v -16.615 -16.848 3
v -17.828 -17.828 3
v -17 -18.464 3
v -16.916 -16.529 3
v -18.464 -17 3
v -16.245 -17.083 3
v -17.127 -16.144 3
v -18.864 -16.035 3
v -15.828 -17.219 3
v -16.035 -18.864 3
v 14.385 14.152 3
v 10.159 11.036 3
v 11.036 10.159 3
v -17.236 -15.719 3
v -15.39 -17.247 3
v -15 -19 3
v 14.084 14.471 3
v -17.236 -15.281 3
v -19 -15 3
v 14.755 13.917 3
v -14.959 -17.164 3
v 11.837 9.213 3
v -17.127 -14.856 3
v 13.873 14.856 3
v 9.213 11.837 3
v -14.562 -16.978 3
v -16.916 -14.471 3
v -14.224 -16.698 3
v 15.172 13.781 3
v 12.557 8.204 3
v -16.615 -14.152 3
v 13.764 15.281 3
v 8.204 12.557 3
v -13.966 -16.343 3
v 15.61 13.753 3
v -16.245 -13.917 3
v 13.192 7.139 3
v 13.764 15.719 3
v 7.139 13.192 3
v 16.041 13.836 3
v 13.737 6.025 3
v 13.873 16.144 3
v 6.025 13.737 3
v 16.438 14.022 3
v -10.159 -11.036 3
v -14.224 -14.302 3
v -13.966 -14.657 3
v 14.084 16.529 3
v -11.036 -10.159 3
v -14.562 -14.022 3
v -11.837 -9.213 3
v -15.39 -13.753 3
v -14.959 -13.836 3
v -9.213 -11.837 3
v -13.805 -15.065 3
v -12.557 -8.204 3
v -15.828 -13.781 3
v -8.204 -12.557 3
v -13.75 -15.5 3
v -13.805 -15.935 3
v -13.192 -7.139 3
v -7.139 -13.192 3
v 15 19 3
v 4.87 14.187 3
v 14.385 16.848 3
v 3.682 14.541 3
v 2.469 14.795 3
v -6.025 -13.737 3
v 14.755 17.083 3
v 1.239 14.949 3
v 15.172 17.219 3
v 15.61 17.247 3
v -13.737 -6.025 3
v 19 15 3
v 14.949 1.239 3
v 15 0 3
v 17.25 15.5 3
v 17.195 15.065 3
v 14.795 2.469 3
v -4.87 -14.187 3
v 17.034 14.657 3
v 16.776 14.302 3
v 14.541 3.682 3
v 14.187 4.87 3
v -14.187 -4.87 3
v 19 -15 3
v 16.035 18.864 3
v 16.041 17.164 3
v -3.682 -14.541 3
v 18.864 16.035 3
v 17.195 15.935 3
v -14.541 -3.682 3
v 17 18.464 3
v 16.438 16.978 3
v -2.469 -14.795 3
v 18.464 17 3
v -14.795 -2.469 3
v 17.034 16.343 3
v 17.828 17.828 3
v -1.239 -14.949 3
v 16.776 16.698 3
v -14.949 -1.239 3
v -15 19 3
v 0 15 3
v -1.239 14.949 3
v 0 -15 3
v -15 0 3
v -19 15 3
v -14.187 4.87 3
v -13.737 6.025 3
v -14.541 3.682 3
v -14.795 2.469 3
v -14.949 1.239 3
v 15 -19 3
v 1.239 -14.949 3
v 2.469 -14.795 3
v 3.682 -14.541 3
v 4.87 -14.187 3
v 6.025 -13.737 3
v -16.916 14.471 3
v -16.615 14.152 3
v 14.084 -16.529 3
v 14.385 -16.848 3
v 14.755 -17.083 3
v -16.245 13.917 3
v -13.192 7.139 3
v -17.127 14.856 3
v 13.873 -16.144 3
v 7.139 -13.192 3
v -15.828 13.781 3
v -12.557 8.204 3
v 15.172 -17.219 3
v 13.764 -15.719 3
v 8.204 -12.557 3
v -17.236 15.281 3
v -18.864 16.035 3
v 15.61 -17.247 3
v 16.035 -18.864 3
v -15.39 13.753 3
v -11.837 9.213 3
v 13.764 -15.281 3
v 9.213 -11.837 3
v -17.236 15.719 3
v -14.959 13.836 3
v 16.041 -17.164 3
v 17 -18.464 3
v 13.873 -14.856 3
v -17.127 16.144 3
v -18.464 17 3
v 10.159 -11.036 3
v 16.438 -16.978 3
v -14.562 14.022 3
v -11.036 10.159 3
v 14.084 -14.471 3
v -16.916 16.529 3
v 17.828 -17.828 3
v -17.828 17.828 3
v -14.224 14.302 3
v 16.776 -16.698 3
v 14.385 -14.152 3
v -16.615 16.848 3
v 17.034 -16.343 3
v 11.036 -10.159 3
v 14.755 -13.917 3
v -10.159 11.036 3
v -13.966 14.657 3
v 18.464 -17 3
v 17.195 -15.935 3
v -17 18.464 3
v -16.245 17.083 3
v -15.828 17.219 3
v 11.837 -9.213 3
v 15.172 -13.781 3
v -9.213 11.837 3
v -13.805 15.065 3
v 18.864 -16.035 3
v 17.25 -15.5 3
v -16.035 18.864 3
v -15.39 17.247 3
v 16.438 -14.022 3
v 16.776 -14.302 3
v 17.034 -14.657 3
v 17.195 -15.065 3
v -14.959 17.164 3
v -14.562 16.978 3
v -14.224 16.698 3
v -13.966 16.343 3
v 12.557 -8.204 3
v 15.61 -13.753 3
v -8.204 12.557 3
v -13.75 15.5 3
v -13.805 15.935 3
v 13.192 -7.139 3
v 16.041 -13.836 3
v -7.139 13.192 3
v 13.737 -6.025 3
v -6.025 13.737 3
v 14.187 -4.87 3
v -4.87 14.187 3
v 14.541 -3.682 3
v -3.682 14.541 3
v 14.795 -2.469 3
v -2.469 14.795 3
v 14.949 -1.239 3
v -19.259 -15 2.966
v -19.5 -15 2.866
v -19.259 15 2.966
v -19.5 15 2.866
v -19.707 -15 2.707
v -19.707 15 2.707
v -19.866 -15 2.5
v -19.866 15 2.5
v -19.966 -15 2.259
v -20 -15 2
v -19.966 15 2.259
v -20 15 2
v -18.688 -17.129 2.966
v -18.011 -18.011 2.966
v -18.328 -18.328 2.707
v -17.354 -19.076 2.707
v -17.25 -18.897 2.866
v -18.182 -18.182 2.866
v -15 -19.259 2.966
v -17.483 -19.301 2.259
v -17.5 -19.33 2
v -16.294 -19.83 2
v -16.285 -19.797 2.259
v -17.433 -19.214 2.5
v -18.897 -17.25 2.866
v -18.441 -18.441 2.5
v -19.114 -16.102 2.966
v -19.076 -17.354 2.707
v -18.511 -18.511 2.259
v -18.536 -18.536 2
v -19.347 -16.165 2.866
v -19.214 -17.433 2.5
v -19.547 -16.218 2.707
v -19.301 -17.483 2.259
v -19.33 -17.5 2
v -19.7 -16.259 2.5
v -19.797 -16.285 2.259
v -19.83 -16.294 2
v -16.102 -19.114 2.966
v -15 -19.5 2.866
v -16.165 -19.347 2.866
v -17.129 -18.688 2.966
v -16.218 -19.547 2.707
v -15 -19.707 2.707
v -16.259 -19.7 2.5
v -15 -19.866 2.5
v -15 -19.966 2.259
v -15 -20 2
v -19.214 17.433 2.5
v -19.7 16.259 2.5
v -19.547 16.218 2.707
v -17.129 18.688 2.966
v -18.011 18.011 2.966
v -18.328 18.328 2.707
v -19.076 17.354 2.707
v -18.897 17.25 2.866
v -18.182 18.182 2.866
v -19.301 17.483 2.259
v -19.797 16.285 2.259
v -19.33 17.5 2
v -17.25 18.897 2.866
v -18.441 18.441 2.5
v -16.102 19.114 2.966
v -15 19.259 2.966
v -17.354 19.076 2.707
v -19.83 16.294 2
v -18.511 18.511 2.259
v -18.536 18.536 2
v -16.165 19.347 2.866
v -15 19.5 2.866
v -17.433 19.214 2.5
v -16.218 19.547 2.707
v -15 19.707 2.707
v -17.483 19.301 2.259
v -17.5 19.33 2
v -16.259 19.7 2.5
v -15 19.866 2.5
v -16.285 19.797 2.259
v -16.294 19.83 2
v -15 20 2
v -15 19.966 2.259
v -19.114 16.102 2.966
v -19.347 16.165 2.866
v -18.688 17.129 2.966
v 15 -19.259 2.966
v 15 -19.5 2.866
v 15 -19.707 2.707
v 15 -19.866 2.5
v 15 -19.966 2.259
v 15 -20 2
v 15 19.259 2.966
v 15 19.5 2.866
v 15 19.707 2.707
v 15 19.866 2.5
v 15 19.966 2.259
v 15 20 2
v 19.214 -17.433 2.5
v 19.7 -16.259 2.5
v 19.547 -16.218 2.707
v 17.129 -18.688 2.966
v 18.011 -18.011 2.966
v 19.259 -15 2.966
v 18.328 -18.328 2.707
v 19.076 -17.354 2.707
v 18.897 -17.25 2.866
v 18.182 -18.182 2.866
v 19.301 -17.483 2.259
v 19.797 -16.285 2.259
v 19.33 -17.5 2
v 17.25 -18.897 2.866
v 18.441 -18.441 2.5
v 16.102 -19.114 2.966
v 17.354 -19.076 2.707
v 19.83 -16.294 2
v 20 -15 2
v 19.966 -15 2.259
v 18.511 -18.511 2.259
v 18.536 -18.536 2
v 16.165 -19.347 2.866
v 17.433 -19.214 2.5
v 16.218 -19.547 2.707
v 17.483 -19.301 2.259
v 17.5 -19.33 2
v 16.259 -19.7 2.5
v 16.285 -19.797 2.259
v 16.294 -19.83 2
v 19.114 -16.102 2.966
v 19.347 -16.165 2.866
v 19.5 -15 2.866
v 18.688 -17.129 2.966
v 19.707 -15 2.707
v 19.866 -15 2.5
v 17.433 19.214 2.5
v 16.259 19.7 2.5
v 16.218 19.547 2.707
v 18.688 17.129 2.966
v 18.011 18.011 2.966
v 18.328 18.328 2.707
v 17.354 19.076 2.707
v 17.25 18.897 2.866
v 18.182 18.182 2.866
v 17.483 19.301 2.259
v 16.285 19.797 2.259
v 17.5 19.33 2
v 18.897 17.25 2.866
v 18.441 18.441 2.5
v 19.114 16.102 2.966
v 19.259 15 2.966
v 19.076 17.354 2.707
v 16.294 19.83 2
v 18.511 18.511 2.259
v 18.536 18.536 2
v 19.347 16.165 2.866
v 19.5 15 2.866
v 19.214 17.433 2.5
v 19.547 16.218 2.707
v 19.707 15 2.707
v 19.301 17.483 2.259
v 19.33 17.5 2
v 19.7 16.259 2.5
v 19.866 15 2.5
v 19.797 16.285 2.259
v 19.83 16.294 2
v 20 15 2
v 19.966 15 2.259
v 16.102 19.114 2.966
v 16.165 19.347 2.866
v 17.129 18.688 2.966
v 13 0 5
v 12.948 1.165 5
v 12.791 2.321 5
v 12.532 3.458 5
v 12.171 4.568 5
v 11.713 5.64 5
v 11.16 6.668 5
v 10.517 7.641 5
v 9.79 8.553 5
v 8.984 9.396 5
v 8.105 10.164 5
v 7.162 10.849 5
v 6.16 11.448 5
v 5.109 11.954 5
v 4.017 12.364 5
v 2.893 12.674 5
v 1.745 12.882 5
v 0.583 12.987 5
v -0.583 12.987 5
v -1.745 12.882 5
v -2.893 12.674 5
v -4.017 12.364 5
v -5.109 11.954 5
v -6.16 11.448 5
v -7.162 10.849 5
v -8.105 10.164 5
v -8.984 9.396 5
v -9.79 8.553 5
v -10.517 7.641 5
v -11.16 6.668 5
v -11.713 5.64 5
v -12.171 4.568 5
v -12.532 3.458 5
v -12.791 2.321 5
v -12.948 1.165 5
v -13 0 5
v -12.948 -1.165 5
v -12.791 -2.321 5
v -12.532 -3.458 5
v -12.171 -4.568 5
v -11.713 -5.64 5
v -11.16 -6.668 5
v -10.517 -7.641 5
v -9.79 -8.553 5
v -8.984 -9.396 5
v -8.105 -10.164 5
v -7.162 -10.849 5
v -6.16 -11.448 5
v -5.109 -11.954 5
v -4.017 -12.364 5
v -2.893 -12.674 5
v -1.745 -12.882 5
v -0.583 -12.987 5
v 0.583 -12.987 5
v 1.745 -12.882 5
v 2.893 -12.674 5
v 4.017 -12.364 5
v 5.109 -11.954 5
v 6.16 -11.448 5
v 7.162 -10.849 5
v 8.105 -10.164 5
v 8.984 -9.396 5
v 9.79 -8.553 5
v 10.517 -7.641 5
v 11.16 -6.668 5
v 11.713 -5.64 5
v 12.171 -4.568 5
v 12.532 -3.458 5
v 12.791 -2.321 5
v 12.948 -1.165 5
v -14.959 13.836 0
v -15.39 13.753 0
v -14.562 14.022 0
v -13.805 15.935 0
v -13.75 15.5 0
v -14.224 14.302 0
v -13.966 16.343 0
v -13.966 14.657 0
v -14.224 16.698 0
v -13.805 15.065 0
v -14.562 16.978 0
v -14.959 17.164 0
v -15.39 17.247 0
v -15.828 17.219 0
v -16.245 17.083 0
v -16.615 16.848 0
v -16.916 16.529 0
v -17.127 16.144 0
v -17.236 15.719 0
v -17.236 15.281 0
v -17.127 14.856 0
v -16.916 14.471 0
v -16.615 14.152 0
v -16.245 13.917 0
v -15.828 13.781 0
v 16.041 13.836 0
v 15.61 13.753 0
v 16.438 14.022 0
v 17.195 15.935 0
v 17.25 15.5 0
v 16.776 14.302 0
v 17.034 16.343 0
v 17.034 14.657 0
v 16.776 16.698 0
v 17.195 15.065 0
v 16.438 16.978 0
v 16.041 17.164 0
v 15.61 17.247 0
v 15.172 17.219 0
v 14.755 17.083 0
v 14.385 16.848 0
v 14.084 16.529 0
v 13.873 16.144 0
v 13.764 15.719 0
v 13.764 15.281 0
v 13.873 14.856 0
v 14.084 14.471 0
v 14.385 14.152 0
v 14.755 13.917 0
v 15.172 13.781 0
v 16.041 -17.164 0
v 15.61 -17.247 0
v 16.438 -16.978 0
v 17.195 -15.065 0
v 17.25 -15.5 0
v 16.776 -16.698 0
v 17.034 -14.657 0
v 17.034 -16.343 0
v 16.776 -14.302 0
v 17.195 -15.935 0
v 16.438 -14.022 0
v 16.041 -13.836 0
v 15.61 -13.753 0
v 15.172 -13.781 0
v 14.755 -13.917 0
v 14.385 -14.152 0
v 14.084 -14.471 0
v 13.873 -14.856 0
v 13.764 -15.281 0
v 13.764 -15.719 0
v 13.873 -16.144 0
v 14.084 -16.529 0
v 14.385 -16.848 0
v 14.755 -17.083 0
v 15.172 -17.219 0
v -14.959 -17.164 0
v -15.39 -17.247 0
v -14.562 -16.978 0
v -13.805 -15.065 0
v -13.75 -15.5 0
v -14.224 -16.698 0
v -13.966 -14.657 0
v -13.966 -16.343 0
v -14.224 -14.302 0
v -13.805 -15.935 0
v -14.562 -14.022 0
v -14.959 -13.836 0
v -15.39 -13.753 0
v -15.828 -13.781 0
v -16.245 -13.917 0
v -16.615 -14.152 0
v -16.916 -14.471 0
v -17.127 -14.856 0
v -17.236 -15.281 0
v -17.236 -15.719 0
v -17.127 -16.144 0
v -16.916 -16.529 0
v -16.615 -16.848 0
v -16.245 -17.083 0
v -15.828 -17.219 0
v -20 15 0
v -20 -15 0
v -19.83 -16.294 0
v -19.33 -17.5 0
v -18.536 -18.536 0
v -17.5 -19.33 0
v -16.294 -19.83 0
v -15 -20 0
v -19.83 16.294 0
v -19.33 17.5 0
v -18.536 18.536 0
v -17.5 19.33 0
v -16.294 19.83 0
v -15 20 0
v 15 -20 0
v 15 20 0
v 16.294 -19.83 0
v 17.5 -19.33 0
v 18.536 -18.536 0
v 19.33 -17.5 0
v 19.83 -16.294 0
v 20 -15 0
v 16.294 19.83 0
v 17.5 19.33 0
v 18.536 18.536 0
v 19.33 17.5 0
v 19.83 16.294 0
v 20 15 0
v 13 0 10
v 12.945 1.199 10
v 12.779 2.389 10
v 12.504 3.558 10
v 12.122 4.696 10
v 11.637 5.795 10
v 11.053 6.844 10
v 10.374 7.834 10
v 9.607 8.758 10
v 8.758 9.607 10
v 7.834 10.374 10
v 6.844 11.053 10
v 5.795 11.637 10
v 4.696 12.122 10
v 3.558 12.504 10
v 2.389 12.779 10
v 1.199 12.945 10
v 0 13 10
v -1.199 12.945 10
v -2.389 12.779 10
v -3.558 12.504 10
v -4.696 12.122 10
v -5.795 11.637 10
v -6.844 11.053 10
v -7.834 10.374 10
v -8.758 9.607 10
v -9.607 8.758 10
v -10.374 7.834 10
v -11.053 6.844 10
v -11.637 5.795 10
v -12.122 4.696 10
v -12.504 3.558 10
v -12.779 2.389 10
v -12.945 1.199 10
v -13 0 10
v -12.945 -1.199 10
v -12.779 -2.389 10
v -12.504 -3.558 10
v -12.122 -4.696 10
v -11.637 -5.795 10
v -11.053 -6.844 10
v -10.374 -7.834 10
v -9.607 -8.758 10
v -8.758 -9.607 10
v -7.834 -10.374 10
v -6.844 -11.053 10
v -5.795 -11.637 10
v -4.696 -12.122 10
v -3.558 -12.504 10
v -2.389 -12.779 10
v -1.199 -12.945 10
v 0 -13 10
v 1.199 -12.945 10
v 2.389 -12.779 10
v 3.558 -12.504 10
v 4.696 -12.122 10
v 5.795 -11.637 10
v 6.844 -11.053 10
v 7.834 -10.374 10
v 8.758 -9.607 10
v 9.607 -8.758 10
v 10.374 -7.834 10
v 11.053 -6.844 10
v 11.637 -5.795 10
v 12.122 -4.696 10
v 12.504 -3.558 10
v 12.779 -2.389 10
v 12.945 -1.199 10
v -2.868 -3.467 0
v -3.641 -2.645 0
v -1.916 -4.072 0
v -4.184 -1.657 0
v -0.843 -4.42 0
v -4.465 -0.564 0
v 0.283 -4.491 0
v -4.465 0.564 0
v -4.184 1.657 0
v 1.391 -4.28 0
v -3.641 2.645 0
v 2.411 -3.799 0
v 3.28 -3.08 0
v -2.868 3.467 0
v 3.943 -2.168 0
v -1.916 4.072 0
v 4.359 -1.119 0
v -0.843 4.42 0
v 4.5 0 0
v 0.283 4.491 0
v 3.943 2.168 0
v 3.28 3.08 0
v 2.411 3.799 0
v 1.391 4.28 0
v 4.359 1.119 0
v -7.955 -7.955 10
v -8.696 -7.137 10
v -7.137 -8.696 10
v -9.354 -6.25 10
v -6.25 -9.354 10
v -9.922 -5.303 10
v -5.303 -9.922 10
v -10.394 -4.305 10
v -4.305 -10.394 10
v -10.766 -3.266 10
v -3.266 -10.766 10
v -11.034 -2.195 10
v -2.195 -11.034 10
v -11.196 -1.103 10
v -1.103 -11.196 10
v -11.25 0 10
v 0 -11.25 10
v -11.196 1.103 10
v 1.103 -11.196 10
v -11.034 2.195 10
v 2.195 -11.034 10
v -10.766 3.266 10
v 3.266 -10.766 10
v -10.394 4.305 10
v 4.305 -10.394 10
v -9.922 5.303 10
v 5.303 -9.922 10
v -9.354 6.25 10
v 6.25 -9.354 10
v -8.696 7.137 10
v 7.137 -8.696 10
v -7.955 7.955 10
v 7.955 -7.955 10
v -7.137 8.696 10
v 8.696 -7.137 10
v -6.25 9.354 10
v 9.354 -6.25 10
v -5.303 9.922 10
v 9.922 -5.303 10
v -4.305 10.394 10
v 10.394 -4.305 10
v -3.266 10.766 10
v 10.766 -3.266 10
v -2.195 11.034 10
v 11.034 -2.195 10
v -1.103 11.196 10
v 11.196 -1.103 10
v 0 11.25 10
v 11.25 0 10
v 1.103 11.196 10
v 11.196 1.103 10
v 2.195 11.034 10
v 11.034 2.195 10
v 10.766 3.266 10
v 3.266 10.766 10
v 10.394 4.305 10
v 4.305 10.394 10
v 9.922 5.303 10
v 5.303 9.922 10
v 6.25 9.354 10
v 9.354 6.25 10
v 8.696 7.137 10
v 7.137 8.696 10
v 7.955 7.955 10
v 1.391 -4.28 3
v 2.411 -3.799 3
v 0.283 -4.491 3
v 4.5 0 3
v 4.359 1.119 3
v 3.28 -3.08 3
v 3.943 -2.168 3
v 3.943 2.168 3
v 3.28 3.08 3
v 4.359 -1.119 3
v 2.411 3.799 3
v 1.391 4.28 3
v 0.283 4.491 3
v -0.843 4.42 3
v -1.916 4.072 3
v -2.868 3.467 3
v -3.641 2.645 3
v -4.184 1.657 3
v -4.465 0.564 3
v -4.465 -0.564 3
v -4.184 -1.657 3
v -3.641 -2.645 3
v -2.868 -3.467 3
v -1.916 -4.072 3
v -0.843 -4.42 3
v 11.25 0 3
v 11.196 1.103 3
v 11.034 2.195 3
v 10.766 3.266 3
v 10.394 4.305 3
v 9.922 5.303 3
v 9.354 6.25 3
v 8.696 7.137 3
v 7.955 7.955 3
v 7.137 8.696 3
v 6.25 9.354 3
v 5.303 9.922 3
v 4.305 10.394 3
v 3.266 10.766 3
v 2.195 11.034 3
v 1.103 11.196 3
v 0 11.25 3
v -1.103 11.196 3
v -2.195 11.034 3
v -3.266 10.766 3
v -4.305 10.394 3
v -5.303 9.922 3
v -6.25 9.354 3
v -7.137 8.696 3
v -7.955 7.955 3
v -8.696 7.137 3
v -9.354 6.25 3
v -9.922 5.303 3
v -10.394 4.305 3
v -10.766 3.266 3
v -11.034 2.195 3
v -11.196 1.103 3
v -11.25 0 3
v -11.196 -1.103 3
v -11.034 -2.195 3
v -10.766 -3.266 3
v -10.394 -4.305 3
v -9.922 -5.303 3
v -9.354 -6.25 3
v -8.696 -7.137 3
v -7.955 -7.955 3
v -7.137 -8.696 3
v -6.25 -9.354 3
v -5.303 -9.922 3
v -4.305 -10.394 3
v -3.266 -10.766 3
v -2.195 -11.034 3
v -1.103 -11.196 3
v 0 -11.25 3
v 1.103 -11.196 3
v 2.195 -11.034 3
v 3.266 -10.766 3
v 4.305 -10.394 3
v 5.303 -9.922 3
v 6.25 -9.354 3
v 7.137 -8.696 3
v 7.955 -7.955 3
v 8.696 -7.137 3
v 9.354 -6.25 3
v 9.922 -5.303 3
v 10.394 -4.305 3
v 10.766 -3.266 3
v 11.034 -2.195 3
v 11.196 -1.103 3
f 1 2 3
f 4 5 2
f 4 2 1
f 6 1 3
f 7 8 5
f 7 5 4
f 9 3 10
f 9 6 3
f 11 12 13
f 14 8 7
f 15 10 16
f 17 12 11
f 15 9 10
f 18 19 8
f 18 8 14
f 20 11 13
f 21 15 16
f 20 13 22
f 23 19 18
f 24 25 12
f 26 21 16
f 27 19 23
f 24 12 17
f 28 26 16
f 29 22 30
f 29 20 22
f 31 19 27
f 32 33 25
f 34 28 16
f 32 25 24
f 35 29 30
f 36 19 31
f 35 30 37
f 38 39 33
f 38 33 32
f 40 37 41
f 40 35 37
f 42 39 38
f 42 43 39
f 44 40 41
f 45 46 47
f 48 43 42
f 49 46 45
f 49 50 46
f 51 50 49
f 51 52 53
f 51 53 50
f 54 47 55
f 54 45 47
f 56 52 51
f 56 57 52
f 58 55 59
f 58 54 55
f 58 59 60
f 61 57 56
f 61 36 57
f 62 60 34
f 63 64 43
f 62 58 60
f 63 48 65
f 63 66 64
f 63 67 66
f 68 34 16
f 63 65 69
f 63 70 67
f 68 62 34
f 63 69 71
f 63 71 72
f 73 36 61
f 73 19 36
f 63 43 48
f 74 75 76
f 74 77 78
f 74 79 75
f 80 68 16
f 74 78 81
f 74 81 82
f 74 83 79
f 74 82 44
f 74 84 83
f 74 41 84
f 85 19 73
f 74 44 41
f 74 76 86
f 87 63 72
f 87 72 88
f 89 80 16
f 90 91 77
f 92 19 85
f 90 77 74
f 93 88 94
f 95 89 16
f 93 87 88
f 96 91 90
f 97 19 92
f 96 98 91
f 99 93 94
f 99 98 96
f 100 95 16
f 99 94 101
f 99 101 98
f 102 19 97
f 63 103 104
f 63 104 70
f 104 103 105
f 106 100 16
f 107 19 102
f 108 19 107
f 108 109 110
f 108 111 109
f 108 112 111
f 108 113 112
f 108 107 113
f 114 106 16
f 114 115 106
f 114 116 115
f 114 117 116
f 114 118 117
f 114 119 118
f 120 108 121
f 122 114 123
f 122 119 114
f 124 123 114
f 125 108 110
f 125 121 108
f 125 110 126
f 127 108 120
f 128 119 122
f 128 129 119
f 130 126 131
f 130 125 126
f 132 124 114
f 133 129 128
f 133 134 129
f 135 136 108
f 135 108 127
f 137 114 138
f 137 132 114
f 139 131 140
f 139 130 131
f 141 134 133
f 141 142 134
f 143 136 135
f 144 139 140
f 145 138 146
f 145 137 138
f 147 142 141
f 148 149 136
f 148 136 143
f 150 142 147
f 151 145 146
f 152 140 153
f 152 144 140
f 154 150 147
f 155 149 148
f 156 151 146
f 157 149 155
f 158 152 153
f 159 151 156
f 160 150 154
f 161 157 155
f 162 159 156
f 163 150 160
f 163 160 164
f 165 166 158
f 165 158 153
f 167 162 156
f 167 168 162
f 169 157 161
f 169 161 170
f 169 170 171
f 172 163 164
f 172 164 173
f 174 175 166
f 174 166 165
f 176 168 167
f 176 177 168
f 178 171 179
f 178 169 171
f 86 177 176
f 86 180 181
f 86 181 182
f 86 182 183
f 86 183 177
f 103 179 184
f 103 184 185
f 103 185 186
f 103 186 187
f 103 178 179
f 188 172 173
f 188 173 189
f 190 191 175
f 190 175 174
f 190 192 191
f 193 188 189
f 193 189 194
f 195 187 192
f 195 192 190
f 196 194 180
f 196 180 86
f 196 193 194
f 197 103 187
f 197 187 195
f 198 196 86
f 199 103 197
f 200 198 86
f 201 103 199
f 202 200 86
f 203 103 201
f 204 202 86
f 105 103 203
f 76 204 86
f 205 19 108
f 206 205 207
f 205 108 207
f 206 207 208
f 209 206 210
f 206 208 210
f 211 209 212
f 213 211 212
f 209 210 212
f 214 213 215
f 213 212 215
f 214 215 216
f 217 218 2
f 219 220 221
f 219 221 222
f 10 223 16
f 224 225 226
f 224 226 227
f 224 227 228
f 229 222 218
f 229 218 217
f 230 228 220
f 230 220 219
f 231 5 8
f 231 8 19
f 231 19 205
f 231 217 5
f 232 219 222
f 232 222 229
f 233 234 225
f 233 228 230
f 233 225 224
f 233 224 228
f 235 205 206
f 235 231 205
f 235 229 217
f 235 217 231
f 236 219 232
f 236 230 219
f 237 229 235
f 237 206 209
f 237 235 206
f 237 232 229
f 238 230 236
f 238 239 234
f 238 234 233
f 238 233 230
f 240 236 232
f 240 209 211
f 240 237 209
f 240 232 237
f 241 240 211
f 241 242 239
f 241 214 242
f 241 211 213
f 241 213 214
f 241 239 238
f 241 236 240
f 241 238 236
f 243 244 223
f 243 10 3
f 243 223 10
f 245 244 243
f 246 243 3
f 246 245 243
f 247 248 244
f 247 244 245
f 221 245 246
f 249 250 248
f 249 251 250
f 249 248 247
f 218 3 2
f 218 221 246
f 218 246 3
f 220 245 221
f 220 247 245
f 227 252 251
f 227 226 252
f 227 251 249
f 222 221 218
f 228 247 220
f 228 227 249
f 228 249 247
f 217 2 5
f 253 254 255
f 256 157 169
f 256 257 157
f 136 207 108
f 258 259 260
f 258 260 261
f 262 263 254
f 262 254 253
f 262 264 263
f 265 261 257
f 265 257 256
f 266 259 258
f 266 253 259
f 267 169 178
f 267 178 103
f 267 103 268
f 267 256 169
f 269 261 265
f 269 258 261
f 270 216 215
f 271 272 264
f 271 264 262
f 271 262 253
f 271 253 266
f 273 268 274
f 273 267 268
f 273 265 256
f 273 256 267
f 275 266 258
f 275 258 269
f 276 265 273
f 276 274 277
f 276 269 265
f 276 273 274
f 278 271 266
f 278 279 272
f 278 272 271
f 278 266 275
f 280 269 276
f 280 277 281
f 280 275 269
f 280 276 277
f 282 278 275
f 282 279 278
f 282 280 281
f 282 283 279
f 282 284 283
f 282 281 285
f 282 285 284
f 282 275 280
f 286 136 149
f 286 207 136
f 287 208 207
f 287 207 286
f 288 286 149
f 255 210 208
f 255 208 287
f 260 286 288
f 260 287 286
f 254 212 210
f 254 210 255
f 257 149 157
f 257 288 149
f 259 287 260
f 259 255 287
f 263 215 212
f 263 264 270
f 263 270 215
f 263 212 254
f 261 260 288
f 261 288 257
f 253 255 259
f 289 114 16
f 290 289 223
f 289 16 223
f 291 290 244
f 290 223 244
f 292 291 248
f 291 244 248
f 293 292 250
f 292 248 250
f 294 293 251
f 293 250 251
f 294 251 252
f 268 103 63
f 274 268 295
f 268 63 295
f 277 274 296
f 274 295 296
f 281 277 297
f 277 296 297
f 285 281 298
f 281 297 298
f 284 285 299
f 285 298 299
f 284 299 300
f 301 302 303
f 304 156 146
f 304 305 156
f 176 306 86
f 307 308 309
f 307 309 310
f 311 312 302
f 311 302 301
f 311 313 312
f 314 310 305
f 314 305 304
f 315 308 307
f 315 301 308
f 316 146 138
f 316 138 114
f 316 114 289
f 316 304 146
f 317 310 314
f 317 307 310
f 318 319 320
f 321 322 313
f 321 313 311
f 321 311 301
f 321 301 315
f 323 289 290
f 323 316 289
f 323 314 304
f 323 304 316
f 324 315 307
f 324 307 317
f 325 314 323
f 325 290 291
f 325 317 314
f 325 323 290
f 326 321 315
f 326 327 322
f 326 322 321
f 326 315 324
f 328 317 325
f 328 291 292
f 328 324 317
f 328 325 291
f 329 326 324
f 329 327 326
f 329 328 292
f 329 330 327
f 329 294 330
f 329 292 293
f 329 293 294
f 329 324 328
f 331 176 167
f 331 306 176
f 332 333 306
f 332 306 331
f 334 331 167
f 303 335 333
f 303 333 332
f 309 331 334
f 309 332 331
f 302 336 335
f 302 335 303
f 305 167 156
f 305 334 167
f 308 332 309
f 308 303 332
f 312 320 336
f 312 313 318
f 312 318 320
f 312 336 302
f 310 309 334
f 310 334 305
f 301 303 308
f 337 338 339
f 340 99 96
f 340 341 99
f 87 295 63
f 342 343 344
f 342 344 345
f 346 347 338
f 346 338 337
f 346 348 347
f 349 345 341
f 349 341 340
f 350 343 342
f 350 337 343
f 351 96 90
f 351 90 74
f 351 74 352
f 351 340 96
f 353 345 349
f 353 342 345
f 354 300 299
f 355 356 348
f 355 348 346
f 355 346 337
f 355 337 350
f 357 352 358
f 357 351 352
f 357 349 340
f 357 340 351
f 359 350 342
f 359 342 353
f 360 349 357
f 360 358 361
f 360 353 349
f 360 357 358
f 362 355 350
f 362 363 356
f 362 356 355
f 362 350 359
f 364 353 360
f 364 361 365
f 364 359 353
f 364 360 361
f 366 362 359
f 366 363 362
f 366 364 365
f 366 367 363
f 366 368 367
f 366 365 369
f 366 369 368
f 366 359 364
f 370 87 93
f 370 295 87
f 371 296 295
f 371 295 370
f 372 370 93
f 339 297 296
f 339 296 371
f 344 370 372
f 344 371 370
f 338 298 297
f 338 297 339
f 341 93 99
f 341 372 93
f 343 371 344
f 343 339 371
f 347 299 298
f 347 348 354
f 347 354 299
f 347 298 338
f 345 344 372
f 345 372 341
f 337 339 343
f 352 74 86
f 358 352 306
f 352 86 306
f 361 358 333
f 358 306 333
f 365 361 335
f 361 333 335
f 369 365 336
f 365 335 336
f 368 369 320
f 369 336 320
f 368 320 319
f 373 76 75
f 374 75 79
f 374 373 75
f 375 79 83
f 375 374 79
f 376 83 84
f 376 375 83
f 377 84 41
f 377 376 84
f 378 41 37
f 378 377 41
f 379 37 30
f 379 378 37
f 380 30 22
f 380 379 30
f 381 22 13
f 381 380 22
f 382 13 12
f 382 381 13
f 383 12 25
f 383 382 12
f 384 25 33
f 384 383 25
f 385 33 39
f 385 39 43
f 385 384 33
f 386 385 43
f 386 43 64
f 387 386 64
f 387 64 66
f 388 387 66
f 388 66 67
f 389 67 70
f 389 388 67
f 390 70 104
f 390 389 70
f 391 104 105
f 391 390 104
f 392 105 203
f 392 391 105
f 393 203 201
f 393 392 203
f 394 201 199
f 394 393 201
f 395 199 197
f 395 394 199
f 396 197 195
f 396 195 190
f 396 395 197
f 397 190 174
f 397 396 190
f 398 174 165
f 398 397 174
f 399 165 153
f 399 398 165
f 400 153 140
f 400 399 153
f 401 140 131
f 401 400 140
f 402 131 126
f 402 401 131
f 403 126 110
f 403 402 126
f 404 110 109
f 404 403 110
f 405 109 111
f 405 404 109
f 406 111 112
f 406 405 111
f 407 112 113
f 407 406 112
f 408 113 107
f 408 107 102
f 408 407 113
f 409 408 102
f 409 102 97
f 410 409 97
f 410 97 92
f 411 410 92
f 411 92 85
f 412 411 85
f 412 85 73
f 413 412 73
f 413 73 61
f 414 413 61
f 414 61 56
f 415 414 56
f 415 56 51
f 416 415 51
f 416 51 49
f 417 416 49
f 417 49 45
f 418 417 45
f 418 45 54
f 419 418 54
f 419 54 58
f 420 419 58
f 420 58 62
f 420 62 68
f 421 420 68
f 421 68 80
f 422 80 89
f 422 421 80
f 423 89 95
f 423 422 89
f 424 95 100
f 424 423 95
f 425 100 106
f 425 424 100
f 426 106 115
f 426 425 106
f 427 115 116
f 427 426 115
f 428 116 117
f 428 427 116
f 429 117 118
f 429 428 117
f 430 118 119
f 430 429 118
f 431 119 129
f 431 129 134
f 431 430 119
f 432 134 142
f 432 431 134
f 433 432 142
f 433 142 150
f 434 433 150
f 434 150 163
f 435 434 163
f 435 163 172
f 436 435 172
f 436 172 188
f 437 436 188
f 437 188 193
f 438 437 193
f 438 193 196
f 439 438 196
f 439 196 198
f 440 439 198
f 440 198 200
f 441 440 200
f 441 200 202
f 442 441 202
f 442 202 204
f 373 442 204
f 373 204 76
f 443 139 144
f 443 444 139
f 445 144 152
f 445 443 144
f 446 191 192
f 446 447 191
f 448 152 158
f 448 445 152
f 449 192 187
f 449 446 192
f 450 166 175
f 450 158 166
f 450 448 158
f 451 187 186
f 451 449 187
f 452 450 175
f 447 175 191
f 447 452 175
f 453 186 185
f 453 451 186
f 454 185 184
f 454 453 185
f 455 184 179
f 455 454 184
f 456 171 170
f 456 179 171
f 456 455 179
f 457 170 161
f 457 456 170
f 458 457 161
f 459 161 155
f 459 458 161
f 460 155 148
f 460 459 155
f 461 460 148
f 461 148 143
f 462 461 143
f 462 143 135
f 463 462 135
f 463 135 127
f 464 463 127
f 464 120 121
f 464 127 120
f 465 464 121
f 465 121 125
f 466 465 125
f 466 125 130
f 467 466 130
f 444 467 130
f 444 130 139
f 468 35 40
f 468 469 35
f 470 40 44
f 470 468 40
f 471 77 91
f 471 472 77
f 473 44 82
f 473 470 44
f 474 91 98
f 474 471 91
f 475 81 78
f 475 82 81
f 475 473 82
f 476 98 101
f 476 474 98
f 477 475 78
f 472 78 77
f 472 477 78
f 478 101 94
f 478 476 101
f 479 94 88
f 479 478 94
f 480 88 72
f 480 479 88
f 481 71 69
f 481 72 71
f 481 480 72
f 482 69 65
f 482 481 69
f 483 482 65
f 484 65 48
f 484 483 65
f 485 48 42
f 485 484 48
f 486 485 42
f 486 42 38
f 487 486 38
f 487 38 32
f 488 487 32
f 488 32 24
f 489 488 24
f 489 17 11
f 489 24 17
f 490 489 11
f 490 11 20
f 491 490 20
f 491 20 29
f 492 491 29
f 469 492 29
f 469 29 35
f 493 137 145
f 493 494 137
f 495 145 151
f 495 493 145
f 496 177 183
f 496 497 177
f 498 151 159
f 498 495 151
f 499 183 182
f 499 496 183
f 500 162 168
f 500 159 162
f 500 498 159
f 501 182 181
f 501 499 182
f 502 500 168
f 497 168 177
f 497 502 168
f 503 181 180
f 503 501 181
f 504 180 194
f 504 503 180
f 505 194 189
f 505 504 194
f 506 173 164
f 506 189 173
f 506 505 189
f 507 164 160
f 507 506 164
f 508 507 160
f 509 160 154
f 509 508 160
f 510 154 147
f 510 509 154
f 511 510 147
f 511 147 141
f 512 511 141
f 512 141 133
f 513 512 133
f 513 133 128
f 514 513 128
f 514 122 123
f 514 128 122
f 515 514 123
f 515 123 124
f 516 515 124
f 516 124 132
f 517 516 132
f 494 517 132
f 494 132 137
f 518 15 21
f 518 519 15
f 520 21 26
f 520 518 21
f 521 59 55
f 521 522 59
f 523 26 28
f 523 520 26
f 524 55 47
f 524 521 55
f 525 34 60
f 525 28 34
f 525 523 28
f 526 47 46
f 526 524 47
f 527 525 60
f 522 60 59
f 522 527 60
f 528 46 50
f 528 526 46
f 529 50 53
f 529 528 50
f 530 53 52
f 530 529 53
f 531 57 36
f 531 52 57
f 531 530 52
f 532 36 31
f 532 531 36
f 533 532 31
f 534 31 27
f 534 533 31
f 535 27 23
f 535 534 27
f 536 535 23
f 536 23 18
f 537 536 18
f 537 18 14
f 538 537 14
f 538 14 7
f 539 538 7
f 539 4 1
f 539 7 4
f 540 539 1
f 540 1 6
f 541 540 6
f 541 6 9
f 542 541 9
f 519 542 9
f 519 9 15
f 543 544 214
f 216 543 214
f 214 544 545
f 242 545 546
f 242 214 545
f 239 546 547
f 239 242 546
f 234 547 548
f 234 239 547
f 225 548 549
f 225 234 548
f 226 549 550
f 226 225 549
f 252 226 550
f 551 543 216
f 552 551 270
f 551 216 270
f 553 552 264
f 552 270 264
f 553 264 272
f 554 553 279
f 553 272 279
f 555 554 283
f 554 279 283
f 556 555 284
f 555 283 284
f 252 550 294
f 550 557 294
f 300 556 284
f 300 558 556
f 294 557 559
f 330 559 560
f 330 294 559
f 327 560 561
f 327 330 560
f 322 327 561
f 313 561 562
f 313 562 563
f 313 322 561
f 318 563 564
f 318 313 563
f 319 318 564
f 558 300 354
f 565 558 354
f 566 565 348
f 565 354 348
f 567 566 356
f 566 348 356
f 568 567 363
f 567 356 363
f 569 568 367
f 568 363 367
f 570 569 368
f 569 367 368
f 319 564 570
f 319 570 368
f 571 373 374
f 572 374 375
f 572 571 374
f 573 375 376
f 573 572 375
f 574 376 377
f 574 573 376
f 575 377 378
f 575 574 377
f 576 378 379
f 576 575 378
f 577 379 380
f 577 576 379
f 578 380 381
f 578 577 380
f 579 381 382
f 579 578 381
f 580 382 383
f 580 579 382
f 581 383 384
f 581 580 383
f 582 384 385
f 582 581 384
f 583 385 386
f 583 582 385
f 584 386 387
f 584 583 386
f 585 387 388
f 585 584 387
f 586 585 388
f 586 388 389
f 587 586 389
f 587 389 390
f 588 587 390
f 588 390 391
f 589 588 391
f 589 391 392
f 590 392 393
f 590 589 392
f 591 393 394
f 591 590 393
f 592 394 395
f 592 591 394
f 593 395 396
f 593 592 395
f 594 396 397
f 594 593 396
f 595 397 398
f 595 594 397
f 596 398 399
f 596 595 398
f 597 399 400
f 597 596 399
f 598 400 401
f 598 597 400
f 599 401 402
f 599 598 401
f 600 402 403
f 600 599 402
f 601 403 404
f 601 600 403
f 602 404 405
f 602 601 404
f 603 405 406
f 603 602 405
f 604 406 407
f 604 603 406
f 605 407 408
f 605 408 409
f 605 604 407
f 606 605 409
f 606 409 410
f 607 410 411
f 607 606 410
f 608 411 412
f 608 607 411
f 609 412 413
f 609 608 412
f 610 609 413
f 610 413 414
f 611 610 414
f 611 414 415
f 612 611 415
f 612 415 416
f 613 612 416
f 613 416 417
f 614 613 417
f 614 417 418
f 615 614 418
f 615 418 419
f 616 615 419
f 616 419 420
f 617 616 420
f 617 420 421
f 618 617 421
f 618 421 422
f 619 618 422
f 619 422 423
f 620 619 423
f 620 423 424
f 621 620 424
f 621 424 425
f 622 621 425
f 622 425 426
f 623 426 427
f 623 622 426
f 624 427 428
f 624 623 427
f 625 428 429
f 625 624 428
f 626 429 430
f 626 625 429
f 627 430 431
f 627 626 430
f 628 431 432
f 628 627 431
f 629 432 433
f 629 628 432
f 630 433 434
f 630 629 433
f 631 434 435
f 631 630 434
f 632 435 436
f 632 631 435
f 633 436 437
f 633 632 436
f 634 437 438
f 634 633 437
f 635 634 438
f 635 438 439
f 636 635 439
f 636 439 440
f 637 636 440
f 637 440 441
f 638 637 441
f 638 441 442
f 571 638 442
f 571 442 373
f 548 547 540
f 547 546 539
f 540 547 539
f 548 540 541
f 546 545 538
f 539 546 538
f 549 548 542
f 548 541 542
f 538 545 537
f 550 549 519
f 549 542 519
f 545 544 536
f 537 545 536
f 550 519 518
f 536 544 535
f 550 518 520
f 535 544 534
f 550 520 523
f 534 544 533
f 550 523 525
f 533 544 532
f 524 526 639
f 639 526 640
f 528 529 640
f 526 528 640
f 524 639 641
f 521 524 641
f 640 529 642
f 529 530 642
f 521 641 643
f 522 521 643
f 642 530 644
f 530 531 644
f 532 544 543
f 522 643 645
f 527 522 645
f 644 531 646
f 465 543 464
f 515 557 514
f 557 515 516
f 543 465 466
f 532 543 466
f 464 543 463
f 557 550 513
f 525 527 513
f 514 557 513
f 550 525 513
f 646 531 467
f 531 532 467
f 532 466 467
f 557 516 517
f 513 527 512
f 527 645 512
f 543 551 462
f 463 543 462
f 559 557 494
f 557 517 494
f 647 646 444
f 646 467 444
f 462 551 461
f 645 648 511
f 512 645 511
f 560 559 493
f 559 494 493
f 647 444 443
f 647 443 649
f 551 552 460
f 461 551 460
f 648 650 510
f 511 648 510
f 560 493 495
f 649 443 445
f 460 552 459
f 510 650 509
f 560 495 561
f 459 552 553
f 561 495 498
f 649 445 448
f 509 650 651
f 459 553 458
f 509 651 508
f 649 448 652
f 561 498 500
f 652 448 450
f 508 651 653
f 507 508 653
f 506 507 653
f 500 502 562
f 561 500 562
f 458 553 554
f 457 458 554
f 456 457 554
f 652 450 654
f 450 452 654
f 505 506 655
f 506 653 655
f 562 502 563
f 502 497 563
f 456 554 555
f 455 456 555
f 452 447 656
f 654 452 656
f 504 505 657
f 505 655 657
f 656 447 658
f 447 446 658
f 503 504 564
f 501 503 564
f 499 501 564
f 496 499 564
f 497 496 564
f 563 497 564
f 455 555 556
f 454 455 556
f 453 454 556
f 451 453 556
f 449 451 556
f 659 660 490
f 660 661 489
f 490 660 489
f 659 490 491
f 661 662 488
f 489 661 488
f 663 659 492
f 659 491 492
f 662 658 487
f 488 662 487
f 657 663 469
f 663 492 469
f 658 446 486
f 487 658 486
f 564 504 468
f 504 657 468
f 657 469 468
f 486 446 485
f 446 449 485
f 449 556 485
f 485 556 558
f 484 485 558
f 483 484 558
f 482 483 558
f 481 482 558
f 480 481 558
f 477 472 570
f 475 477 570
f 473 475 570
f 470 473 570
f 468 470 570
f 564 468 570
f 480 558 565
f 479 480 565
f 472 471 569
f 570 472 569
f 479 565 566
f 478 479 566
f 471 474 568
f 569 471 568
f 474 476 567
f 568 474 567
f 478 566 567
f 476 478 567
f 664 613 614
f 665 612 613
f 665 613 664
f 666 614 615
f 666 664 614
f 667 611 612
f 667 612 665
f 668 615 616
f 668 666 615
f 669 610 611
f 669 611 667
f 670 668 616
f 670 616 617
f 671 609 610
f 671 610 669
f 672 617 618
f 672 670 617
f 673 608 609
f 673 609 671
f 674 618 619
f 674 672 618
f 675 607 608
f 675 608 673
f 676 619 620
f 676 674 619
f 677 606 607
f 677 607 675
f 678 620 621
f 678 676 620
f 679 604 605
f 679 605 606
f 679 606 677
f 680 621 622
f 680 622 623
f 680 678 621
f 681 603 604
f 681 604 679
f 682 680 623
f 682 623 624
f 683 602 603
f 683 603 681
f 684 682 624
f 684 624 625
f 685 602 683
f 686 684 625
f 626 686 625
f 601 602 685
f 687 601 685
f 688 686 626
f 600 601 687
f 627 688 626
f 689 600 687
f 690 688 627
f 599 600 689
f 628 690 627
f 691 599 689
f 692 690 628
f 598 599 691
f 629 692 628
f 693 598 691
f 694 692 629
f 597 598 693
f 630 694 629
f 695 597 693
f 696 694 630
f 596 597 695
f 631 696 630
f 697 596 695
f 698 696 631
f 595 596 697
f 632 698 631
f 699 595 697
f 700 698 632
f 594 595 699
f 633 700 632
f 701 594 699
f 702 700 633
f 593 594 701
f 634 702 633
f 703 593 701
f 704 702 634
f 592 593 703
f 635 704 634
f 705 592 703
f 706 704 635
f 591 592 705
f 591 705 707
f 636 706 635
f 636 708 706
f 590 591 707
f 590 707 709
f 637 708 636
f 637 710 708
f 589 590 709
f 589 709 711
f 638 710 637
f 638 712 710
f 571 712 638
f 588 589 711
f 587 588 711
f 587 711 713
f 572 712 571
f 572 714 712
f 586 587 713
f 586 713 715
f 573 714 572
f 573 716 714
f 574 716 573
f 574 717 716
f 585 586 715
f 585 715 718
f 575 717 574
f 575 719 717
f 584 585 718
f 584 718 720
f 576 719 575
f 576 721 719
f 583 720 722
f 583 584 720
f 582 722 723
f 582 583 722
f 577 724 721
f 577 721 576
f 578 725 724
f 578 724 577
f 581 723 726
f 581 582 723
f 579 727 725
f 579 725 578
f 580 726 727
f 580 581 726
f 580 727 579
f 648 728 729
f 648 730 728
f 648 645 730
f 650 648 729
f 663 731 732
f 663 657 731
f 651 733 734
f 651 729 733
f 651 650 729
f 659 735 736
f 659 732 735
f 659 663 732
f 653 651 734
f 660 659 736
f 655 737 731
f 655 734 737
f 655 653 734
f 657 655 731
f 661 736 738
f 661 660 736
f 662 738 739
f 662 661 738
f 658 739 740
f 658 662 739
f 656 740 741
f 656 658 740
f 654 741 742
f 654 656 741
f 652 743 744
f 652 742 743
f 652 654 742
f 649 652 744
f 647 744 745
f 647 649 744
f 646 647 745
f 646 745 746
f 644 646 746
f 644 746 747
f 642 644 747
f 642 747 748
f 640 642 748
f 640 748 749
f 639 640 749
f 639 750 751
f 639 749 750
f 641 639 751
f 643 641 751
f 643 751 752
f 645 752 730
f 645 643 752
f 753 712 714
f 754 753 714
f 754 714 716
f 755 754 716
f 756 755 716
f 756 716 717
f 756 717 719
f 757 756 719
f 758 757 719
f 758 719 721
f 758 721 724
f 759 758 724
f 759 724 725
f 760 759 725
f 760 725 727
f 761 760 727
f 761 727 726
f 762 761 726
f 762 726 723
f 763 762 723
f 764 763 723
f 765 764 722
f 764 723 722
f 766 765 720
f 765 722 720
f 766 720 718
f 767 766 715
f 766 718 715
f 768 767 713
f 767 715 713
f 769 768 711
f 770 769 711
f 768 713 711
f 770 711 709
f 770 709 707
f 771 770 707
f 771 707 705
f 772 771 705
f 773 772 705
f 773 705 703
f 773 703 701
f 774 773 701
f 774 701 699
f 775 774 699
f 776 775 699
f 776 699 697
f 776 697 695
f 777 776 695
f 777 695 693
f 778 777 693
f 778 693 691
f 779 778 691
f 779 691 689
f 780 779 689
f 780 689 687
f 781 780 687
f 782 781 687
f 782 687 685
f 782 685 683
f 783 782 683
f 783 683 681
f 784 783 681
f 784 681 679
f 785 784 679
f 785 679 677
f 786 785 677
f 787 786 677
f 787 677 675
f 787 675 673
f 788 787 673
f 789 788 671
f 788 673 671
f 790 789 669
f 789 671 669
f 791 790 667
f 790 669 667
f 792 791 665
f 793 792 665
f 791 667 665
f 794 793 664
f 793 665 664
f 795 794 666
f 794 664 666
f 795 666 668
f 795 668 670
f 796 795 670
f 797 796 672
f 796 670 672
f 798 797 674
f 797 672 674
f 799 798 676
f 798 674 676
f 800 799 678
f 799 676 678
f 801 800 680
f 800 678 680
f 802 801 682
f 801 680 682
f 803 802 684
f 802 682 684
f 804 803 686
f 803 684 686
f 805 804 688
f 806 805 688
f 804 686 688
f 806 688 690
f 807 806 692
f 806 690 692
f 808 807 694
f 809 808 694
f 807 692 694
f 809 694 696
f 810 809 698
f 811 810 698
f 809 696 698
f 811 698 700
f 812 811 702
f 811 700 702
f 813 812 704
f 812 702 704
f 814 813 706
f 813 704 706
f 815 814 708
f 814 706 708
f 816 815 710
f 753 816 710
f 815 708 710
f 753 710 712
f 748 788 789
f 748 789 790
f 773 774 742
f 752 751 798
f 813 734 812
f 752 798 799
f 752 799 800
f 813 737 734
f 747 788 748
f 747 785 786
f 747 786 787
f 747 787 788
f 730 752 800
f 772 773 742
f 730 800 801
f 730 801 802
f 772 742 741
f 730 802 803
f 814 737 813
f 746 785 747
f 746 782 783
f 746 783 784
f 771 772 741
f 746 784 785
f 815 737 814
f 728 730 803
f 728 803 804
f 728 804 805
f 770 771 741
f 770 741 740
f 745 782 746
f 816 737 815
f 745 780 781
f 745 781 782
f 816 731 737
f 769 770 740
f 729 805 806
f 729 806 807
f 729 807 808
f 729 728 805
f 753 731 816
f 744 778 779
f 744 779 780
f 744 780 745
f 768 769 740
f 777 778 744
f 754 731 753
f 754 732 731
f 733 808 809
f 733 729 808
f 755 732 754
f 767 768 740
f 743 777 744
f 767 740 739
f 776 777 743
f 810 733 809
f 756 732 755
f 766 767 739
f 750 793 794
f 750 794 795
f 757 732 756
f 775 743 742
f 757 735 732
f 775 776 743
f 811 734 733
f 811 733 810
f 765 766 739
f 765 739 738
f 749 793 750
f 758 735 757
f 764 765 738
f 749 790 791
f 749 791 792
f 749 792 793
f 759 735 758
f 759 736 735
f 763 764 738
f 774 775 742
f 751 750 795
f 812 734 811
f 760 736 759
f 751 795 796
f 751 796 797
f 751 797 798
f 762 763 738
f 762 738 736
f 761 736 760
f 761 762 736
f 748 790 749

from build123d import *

# Parameters (mm, degrees)
CYLINDER001_R     = 11.25
CYLINDER001_DEPTH = 7
CYLINDER_R        = 13
CYLINDER_DEPTH    = 7
SKETCH_R          = 1.75
SKETCH_R_2        = 4.5
PAD_DEPTH         = 4
BOX_W             = 40
BOX_H             = 40
BOX_DEPTH         = 3
CHAMFER_SIZE      = 2
FILLET_R          = 5
FILLET001_R       = 1


with BuildPart() as espai_608_int:
    # Cylinder001 → Cylinder001 (new body)
    with BuildSketch(Plane.XY):
        Circle(CYLINDER001_R)
    extrude(amount=CYLINDER001_DEPTH)


with BuildPart() as cut001:
    # Cylinder → Cylinder (new body)
    with BuildSketch(Plane.XY):
        Circle(CYLINDER_R)
    extrude(amount=CYLINDER_DEPTH)

    # Cut001: cut espai-608-int
    add(espai_608_int.part, mode=Mode.SUBTRACT)


with BuildPart() as cut001_1:
    # Cut001 placement: moved
    add(cut001.part.moved(Location((0, 0, 3))))


with BuildPart() as pad:
    # Sketch → Pad (new body)
    with BuildSketch(Plane.XY.offset(-0.5)):
        with Locations((-15.5, 15.5)):
            Circle(SKETCH_R)
        with Locations((15.5, 15.5)):
            Circle(SKETCH_R)
        with Locations((-15.5, -15.5)):
            Circle(SKETCH_R)
        with Locations((15.5, -15.5)):
            Circle(SKETCH_R)
        Circle(SKETCH_R_2)
    extrude(amount=PAD_DEPTH)


with BuildPart() as x_end_idler_cnc:
    # Box → Box (new body)
    with BuildSketch(Plane(origin=(-20, -20, 0), x_dir=(1, 0, 0), z_dir=(0, 0, 1))):
        with Locations((20, 20)):
            Rectangle(BOX_W, BOX_H)
    extrude(amount=BOX_DEPTH)

    # Cut: cut Pad
    add(pad.part, mode=Mode.SUBTRACT)

    # Fusion: union Cut001
    add(cut001_1.part)

    # Chamfer
    chamfer_edges = [x_end_idler_cnc.edges().sort_by_distance(p)[0] for p in [
        (-13, 0, 3),
    ]]
    chamfer(chamfer_edges, length=CHAMFER_SIZE)

    # Fillet
    fillet_edges = [x_end_idler_cnc.edges().sort_by_distance(p)[0] for p in [
        (-20, -20, 1.5),
        (-20, 20, 1.5),
        (20, 20, 1.5),
        (20, -20, 1.5),
    ]]
    fillet(fillet_edges, radius=FILLET_R)

    # Fillet001
    fillet001_edges = [x_end_idler_cnc.edges().sort_by_distance(p)[0] for p in [
        (-20, 0, 3),
        (-18.535534, -18.535534, 3),
        (-18.535534, 18.535534, 3),
        (0, -20, 3),
        (0, 20, 3),
        (18.535534, -18.535534, 3),
        (18.535534, 18.535534, 3),
        (20, 0, 3),
    ]]
    fillet(fillet001_edges, radius=FILLET001_R)


solid = x_end_idler_cnc.part
